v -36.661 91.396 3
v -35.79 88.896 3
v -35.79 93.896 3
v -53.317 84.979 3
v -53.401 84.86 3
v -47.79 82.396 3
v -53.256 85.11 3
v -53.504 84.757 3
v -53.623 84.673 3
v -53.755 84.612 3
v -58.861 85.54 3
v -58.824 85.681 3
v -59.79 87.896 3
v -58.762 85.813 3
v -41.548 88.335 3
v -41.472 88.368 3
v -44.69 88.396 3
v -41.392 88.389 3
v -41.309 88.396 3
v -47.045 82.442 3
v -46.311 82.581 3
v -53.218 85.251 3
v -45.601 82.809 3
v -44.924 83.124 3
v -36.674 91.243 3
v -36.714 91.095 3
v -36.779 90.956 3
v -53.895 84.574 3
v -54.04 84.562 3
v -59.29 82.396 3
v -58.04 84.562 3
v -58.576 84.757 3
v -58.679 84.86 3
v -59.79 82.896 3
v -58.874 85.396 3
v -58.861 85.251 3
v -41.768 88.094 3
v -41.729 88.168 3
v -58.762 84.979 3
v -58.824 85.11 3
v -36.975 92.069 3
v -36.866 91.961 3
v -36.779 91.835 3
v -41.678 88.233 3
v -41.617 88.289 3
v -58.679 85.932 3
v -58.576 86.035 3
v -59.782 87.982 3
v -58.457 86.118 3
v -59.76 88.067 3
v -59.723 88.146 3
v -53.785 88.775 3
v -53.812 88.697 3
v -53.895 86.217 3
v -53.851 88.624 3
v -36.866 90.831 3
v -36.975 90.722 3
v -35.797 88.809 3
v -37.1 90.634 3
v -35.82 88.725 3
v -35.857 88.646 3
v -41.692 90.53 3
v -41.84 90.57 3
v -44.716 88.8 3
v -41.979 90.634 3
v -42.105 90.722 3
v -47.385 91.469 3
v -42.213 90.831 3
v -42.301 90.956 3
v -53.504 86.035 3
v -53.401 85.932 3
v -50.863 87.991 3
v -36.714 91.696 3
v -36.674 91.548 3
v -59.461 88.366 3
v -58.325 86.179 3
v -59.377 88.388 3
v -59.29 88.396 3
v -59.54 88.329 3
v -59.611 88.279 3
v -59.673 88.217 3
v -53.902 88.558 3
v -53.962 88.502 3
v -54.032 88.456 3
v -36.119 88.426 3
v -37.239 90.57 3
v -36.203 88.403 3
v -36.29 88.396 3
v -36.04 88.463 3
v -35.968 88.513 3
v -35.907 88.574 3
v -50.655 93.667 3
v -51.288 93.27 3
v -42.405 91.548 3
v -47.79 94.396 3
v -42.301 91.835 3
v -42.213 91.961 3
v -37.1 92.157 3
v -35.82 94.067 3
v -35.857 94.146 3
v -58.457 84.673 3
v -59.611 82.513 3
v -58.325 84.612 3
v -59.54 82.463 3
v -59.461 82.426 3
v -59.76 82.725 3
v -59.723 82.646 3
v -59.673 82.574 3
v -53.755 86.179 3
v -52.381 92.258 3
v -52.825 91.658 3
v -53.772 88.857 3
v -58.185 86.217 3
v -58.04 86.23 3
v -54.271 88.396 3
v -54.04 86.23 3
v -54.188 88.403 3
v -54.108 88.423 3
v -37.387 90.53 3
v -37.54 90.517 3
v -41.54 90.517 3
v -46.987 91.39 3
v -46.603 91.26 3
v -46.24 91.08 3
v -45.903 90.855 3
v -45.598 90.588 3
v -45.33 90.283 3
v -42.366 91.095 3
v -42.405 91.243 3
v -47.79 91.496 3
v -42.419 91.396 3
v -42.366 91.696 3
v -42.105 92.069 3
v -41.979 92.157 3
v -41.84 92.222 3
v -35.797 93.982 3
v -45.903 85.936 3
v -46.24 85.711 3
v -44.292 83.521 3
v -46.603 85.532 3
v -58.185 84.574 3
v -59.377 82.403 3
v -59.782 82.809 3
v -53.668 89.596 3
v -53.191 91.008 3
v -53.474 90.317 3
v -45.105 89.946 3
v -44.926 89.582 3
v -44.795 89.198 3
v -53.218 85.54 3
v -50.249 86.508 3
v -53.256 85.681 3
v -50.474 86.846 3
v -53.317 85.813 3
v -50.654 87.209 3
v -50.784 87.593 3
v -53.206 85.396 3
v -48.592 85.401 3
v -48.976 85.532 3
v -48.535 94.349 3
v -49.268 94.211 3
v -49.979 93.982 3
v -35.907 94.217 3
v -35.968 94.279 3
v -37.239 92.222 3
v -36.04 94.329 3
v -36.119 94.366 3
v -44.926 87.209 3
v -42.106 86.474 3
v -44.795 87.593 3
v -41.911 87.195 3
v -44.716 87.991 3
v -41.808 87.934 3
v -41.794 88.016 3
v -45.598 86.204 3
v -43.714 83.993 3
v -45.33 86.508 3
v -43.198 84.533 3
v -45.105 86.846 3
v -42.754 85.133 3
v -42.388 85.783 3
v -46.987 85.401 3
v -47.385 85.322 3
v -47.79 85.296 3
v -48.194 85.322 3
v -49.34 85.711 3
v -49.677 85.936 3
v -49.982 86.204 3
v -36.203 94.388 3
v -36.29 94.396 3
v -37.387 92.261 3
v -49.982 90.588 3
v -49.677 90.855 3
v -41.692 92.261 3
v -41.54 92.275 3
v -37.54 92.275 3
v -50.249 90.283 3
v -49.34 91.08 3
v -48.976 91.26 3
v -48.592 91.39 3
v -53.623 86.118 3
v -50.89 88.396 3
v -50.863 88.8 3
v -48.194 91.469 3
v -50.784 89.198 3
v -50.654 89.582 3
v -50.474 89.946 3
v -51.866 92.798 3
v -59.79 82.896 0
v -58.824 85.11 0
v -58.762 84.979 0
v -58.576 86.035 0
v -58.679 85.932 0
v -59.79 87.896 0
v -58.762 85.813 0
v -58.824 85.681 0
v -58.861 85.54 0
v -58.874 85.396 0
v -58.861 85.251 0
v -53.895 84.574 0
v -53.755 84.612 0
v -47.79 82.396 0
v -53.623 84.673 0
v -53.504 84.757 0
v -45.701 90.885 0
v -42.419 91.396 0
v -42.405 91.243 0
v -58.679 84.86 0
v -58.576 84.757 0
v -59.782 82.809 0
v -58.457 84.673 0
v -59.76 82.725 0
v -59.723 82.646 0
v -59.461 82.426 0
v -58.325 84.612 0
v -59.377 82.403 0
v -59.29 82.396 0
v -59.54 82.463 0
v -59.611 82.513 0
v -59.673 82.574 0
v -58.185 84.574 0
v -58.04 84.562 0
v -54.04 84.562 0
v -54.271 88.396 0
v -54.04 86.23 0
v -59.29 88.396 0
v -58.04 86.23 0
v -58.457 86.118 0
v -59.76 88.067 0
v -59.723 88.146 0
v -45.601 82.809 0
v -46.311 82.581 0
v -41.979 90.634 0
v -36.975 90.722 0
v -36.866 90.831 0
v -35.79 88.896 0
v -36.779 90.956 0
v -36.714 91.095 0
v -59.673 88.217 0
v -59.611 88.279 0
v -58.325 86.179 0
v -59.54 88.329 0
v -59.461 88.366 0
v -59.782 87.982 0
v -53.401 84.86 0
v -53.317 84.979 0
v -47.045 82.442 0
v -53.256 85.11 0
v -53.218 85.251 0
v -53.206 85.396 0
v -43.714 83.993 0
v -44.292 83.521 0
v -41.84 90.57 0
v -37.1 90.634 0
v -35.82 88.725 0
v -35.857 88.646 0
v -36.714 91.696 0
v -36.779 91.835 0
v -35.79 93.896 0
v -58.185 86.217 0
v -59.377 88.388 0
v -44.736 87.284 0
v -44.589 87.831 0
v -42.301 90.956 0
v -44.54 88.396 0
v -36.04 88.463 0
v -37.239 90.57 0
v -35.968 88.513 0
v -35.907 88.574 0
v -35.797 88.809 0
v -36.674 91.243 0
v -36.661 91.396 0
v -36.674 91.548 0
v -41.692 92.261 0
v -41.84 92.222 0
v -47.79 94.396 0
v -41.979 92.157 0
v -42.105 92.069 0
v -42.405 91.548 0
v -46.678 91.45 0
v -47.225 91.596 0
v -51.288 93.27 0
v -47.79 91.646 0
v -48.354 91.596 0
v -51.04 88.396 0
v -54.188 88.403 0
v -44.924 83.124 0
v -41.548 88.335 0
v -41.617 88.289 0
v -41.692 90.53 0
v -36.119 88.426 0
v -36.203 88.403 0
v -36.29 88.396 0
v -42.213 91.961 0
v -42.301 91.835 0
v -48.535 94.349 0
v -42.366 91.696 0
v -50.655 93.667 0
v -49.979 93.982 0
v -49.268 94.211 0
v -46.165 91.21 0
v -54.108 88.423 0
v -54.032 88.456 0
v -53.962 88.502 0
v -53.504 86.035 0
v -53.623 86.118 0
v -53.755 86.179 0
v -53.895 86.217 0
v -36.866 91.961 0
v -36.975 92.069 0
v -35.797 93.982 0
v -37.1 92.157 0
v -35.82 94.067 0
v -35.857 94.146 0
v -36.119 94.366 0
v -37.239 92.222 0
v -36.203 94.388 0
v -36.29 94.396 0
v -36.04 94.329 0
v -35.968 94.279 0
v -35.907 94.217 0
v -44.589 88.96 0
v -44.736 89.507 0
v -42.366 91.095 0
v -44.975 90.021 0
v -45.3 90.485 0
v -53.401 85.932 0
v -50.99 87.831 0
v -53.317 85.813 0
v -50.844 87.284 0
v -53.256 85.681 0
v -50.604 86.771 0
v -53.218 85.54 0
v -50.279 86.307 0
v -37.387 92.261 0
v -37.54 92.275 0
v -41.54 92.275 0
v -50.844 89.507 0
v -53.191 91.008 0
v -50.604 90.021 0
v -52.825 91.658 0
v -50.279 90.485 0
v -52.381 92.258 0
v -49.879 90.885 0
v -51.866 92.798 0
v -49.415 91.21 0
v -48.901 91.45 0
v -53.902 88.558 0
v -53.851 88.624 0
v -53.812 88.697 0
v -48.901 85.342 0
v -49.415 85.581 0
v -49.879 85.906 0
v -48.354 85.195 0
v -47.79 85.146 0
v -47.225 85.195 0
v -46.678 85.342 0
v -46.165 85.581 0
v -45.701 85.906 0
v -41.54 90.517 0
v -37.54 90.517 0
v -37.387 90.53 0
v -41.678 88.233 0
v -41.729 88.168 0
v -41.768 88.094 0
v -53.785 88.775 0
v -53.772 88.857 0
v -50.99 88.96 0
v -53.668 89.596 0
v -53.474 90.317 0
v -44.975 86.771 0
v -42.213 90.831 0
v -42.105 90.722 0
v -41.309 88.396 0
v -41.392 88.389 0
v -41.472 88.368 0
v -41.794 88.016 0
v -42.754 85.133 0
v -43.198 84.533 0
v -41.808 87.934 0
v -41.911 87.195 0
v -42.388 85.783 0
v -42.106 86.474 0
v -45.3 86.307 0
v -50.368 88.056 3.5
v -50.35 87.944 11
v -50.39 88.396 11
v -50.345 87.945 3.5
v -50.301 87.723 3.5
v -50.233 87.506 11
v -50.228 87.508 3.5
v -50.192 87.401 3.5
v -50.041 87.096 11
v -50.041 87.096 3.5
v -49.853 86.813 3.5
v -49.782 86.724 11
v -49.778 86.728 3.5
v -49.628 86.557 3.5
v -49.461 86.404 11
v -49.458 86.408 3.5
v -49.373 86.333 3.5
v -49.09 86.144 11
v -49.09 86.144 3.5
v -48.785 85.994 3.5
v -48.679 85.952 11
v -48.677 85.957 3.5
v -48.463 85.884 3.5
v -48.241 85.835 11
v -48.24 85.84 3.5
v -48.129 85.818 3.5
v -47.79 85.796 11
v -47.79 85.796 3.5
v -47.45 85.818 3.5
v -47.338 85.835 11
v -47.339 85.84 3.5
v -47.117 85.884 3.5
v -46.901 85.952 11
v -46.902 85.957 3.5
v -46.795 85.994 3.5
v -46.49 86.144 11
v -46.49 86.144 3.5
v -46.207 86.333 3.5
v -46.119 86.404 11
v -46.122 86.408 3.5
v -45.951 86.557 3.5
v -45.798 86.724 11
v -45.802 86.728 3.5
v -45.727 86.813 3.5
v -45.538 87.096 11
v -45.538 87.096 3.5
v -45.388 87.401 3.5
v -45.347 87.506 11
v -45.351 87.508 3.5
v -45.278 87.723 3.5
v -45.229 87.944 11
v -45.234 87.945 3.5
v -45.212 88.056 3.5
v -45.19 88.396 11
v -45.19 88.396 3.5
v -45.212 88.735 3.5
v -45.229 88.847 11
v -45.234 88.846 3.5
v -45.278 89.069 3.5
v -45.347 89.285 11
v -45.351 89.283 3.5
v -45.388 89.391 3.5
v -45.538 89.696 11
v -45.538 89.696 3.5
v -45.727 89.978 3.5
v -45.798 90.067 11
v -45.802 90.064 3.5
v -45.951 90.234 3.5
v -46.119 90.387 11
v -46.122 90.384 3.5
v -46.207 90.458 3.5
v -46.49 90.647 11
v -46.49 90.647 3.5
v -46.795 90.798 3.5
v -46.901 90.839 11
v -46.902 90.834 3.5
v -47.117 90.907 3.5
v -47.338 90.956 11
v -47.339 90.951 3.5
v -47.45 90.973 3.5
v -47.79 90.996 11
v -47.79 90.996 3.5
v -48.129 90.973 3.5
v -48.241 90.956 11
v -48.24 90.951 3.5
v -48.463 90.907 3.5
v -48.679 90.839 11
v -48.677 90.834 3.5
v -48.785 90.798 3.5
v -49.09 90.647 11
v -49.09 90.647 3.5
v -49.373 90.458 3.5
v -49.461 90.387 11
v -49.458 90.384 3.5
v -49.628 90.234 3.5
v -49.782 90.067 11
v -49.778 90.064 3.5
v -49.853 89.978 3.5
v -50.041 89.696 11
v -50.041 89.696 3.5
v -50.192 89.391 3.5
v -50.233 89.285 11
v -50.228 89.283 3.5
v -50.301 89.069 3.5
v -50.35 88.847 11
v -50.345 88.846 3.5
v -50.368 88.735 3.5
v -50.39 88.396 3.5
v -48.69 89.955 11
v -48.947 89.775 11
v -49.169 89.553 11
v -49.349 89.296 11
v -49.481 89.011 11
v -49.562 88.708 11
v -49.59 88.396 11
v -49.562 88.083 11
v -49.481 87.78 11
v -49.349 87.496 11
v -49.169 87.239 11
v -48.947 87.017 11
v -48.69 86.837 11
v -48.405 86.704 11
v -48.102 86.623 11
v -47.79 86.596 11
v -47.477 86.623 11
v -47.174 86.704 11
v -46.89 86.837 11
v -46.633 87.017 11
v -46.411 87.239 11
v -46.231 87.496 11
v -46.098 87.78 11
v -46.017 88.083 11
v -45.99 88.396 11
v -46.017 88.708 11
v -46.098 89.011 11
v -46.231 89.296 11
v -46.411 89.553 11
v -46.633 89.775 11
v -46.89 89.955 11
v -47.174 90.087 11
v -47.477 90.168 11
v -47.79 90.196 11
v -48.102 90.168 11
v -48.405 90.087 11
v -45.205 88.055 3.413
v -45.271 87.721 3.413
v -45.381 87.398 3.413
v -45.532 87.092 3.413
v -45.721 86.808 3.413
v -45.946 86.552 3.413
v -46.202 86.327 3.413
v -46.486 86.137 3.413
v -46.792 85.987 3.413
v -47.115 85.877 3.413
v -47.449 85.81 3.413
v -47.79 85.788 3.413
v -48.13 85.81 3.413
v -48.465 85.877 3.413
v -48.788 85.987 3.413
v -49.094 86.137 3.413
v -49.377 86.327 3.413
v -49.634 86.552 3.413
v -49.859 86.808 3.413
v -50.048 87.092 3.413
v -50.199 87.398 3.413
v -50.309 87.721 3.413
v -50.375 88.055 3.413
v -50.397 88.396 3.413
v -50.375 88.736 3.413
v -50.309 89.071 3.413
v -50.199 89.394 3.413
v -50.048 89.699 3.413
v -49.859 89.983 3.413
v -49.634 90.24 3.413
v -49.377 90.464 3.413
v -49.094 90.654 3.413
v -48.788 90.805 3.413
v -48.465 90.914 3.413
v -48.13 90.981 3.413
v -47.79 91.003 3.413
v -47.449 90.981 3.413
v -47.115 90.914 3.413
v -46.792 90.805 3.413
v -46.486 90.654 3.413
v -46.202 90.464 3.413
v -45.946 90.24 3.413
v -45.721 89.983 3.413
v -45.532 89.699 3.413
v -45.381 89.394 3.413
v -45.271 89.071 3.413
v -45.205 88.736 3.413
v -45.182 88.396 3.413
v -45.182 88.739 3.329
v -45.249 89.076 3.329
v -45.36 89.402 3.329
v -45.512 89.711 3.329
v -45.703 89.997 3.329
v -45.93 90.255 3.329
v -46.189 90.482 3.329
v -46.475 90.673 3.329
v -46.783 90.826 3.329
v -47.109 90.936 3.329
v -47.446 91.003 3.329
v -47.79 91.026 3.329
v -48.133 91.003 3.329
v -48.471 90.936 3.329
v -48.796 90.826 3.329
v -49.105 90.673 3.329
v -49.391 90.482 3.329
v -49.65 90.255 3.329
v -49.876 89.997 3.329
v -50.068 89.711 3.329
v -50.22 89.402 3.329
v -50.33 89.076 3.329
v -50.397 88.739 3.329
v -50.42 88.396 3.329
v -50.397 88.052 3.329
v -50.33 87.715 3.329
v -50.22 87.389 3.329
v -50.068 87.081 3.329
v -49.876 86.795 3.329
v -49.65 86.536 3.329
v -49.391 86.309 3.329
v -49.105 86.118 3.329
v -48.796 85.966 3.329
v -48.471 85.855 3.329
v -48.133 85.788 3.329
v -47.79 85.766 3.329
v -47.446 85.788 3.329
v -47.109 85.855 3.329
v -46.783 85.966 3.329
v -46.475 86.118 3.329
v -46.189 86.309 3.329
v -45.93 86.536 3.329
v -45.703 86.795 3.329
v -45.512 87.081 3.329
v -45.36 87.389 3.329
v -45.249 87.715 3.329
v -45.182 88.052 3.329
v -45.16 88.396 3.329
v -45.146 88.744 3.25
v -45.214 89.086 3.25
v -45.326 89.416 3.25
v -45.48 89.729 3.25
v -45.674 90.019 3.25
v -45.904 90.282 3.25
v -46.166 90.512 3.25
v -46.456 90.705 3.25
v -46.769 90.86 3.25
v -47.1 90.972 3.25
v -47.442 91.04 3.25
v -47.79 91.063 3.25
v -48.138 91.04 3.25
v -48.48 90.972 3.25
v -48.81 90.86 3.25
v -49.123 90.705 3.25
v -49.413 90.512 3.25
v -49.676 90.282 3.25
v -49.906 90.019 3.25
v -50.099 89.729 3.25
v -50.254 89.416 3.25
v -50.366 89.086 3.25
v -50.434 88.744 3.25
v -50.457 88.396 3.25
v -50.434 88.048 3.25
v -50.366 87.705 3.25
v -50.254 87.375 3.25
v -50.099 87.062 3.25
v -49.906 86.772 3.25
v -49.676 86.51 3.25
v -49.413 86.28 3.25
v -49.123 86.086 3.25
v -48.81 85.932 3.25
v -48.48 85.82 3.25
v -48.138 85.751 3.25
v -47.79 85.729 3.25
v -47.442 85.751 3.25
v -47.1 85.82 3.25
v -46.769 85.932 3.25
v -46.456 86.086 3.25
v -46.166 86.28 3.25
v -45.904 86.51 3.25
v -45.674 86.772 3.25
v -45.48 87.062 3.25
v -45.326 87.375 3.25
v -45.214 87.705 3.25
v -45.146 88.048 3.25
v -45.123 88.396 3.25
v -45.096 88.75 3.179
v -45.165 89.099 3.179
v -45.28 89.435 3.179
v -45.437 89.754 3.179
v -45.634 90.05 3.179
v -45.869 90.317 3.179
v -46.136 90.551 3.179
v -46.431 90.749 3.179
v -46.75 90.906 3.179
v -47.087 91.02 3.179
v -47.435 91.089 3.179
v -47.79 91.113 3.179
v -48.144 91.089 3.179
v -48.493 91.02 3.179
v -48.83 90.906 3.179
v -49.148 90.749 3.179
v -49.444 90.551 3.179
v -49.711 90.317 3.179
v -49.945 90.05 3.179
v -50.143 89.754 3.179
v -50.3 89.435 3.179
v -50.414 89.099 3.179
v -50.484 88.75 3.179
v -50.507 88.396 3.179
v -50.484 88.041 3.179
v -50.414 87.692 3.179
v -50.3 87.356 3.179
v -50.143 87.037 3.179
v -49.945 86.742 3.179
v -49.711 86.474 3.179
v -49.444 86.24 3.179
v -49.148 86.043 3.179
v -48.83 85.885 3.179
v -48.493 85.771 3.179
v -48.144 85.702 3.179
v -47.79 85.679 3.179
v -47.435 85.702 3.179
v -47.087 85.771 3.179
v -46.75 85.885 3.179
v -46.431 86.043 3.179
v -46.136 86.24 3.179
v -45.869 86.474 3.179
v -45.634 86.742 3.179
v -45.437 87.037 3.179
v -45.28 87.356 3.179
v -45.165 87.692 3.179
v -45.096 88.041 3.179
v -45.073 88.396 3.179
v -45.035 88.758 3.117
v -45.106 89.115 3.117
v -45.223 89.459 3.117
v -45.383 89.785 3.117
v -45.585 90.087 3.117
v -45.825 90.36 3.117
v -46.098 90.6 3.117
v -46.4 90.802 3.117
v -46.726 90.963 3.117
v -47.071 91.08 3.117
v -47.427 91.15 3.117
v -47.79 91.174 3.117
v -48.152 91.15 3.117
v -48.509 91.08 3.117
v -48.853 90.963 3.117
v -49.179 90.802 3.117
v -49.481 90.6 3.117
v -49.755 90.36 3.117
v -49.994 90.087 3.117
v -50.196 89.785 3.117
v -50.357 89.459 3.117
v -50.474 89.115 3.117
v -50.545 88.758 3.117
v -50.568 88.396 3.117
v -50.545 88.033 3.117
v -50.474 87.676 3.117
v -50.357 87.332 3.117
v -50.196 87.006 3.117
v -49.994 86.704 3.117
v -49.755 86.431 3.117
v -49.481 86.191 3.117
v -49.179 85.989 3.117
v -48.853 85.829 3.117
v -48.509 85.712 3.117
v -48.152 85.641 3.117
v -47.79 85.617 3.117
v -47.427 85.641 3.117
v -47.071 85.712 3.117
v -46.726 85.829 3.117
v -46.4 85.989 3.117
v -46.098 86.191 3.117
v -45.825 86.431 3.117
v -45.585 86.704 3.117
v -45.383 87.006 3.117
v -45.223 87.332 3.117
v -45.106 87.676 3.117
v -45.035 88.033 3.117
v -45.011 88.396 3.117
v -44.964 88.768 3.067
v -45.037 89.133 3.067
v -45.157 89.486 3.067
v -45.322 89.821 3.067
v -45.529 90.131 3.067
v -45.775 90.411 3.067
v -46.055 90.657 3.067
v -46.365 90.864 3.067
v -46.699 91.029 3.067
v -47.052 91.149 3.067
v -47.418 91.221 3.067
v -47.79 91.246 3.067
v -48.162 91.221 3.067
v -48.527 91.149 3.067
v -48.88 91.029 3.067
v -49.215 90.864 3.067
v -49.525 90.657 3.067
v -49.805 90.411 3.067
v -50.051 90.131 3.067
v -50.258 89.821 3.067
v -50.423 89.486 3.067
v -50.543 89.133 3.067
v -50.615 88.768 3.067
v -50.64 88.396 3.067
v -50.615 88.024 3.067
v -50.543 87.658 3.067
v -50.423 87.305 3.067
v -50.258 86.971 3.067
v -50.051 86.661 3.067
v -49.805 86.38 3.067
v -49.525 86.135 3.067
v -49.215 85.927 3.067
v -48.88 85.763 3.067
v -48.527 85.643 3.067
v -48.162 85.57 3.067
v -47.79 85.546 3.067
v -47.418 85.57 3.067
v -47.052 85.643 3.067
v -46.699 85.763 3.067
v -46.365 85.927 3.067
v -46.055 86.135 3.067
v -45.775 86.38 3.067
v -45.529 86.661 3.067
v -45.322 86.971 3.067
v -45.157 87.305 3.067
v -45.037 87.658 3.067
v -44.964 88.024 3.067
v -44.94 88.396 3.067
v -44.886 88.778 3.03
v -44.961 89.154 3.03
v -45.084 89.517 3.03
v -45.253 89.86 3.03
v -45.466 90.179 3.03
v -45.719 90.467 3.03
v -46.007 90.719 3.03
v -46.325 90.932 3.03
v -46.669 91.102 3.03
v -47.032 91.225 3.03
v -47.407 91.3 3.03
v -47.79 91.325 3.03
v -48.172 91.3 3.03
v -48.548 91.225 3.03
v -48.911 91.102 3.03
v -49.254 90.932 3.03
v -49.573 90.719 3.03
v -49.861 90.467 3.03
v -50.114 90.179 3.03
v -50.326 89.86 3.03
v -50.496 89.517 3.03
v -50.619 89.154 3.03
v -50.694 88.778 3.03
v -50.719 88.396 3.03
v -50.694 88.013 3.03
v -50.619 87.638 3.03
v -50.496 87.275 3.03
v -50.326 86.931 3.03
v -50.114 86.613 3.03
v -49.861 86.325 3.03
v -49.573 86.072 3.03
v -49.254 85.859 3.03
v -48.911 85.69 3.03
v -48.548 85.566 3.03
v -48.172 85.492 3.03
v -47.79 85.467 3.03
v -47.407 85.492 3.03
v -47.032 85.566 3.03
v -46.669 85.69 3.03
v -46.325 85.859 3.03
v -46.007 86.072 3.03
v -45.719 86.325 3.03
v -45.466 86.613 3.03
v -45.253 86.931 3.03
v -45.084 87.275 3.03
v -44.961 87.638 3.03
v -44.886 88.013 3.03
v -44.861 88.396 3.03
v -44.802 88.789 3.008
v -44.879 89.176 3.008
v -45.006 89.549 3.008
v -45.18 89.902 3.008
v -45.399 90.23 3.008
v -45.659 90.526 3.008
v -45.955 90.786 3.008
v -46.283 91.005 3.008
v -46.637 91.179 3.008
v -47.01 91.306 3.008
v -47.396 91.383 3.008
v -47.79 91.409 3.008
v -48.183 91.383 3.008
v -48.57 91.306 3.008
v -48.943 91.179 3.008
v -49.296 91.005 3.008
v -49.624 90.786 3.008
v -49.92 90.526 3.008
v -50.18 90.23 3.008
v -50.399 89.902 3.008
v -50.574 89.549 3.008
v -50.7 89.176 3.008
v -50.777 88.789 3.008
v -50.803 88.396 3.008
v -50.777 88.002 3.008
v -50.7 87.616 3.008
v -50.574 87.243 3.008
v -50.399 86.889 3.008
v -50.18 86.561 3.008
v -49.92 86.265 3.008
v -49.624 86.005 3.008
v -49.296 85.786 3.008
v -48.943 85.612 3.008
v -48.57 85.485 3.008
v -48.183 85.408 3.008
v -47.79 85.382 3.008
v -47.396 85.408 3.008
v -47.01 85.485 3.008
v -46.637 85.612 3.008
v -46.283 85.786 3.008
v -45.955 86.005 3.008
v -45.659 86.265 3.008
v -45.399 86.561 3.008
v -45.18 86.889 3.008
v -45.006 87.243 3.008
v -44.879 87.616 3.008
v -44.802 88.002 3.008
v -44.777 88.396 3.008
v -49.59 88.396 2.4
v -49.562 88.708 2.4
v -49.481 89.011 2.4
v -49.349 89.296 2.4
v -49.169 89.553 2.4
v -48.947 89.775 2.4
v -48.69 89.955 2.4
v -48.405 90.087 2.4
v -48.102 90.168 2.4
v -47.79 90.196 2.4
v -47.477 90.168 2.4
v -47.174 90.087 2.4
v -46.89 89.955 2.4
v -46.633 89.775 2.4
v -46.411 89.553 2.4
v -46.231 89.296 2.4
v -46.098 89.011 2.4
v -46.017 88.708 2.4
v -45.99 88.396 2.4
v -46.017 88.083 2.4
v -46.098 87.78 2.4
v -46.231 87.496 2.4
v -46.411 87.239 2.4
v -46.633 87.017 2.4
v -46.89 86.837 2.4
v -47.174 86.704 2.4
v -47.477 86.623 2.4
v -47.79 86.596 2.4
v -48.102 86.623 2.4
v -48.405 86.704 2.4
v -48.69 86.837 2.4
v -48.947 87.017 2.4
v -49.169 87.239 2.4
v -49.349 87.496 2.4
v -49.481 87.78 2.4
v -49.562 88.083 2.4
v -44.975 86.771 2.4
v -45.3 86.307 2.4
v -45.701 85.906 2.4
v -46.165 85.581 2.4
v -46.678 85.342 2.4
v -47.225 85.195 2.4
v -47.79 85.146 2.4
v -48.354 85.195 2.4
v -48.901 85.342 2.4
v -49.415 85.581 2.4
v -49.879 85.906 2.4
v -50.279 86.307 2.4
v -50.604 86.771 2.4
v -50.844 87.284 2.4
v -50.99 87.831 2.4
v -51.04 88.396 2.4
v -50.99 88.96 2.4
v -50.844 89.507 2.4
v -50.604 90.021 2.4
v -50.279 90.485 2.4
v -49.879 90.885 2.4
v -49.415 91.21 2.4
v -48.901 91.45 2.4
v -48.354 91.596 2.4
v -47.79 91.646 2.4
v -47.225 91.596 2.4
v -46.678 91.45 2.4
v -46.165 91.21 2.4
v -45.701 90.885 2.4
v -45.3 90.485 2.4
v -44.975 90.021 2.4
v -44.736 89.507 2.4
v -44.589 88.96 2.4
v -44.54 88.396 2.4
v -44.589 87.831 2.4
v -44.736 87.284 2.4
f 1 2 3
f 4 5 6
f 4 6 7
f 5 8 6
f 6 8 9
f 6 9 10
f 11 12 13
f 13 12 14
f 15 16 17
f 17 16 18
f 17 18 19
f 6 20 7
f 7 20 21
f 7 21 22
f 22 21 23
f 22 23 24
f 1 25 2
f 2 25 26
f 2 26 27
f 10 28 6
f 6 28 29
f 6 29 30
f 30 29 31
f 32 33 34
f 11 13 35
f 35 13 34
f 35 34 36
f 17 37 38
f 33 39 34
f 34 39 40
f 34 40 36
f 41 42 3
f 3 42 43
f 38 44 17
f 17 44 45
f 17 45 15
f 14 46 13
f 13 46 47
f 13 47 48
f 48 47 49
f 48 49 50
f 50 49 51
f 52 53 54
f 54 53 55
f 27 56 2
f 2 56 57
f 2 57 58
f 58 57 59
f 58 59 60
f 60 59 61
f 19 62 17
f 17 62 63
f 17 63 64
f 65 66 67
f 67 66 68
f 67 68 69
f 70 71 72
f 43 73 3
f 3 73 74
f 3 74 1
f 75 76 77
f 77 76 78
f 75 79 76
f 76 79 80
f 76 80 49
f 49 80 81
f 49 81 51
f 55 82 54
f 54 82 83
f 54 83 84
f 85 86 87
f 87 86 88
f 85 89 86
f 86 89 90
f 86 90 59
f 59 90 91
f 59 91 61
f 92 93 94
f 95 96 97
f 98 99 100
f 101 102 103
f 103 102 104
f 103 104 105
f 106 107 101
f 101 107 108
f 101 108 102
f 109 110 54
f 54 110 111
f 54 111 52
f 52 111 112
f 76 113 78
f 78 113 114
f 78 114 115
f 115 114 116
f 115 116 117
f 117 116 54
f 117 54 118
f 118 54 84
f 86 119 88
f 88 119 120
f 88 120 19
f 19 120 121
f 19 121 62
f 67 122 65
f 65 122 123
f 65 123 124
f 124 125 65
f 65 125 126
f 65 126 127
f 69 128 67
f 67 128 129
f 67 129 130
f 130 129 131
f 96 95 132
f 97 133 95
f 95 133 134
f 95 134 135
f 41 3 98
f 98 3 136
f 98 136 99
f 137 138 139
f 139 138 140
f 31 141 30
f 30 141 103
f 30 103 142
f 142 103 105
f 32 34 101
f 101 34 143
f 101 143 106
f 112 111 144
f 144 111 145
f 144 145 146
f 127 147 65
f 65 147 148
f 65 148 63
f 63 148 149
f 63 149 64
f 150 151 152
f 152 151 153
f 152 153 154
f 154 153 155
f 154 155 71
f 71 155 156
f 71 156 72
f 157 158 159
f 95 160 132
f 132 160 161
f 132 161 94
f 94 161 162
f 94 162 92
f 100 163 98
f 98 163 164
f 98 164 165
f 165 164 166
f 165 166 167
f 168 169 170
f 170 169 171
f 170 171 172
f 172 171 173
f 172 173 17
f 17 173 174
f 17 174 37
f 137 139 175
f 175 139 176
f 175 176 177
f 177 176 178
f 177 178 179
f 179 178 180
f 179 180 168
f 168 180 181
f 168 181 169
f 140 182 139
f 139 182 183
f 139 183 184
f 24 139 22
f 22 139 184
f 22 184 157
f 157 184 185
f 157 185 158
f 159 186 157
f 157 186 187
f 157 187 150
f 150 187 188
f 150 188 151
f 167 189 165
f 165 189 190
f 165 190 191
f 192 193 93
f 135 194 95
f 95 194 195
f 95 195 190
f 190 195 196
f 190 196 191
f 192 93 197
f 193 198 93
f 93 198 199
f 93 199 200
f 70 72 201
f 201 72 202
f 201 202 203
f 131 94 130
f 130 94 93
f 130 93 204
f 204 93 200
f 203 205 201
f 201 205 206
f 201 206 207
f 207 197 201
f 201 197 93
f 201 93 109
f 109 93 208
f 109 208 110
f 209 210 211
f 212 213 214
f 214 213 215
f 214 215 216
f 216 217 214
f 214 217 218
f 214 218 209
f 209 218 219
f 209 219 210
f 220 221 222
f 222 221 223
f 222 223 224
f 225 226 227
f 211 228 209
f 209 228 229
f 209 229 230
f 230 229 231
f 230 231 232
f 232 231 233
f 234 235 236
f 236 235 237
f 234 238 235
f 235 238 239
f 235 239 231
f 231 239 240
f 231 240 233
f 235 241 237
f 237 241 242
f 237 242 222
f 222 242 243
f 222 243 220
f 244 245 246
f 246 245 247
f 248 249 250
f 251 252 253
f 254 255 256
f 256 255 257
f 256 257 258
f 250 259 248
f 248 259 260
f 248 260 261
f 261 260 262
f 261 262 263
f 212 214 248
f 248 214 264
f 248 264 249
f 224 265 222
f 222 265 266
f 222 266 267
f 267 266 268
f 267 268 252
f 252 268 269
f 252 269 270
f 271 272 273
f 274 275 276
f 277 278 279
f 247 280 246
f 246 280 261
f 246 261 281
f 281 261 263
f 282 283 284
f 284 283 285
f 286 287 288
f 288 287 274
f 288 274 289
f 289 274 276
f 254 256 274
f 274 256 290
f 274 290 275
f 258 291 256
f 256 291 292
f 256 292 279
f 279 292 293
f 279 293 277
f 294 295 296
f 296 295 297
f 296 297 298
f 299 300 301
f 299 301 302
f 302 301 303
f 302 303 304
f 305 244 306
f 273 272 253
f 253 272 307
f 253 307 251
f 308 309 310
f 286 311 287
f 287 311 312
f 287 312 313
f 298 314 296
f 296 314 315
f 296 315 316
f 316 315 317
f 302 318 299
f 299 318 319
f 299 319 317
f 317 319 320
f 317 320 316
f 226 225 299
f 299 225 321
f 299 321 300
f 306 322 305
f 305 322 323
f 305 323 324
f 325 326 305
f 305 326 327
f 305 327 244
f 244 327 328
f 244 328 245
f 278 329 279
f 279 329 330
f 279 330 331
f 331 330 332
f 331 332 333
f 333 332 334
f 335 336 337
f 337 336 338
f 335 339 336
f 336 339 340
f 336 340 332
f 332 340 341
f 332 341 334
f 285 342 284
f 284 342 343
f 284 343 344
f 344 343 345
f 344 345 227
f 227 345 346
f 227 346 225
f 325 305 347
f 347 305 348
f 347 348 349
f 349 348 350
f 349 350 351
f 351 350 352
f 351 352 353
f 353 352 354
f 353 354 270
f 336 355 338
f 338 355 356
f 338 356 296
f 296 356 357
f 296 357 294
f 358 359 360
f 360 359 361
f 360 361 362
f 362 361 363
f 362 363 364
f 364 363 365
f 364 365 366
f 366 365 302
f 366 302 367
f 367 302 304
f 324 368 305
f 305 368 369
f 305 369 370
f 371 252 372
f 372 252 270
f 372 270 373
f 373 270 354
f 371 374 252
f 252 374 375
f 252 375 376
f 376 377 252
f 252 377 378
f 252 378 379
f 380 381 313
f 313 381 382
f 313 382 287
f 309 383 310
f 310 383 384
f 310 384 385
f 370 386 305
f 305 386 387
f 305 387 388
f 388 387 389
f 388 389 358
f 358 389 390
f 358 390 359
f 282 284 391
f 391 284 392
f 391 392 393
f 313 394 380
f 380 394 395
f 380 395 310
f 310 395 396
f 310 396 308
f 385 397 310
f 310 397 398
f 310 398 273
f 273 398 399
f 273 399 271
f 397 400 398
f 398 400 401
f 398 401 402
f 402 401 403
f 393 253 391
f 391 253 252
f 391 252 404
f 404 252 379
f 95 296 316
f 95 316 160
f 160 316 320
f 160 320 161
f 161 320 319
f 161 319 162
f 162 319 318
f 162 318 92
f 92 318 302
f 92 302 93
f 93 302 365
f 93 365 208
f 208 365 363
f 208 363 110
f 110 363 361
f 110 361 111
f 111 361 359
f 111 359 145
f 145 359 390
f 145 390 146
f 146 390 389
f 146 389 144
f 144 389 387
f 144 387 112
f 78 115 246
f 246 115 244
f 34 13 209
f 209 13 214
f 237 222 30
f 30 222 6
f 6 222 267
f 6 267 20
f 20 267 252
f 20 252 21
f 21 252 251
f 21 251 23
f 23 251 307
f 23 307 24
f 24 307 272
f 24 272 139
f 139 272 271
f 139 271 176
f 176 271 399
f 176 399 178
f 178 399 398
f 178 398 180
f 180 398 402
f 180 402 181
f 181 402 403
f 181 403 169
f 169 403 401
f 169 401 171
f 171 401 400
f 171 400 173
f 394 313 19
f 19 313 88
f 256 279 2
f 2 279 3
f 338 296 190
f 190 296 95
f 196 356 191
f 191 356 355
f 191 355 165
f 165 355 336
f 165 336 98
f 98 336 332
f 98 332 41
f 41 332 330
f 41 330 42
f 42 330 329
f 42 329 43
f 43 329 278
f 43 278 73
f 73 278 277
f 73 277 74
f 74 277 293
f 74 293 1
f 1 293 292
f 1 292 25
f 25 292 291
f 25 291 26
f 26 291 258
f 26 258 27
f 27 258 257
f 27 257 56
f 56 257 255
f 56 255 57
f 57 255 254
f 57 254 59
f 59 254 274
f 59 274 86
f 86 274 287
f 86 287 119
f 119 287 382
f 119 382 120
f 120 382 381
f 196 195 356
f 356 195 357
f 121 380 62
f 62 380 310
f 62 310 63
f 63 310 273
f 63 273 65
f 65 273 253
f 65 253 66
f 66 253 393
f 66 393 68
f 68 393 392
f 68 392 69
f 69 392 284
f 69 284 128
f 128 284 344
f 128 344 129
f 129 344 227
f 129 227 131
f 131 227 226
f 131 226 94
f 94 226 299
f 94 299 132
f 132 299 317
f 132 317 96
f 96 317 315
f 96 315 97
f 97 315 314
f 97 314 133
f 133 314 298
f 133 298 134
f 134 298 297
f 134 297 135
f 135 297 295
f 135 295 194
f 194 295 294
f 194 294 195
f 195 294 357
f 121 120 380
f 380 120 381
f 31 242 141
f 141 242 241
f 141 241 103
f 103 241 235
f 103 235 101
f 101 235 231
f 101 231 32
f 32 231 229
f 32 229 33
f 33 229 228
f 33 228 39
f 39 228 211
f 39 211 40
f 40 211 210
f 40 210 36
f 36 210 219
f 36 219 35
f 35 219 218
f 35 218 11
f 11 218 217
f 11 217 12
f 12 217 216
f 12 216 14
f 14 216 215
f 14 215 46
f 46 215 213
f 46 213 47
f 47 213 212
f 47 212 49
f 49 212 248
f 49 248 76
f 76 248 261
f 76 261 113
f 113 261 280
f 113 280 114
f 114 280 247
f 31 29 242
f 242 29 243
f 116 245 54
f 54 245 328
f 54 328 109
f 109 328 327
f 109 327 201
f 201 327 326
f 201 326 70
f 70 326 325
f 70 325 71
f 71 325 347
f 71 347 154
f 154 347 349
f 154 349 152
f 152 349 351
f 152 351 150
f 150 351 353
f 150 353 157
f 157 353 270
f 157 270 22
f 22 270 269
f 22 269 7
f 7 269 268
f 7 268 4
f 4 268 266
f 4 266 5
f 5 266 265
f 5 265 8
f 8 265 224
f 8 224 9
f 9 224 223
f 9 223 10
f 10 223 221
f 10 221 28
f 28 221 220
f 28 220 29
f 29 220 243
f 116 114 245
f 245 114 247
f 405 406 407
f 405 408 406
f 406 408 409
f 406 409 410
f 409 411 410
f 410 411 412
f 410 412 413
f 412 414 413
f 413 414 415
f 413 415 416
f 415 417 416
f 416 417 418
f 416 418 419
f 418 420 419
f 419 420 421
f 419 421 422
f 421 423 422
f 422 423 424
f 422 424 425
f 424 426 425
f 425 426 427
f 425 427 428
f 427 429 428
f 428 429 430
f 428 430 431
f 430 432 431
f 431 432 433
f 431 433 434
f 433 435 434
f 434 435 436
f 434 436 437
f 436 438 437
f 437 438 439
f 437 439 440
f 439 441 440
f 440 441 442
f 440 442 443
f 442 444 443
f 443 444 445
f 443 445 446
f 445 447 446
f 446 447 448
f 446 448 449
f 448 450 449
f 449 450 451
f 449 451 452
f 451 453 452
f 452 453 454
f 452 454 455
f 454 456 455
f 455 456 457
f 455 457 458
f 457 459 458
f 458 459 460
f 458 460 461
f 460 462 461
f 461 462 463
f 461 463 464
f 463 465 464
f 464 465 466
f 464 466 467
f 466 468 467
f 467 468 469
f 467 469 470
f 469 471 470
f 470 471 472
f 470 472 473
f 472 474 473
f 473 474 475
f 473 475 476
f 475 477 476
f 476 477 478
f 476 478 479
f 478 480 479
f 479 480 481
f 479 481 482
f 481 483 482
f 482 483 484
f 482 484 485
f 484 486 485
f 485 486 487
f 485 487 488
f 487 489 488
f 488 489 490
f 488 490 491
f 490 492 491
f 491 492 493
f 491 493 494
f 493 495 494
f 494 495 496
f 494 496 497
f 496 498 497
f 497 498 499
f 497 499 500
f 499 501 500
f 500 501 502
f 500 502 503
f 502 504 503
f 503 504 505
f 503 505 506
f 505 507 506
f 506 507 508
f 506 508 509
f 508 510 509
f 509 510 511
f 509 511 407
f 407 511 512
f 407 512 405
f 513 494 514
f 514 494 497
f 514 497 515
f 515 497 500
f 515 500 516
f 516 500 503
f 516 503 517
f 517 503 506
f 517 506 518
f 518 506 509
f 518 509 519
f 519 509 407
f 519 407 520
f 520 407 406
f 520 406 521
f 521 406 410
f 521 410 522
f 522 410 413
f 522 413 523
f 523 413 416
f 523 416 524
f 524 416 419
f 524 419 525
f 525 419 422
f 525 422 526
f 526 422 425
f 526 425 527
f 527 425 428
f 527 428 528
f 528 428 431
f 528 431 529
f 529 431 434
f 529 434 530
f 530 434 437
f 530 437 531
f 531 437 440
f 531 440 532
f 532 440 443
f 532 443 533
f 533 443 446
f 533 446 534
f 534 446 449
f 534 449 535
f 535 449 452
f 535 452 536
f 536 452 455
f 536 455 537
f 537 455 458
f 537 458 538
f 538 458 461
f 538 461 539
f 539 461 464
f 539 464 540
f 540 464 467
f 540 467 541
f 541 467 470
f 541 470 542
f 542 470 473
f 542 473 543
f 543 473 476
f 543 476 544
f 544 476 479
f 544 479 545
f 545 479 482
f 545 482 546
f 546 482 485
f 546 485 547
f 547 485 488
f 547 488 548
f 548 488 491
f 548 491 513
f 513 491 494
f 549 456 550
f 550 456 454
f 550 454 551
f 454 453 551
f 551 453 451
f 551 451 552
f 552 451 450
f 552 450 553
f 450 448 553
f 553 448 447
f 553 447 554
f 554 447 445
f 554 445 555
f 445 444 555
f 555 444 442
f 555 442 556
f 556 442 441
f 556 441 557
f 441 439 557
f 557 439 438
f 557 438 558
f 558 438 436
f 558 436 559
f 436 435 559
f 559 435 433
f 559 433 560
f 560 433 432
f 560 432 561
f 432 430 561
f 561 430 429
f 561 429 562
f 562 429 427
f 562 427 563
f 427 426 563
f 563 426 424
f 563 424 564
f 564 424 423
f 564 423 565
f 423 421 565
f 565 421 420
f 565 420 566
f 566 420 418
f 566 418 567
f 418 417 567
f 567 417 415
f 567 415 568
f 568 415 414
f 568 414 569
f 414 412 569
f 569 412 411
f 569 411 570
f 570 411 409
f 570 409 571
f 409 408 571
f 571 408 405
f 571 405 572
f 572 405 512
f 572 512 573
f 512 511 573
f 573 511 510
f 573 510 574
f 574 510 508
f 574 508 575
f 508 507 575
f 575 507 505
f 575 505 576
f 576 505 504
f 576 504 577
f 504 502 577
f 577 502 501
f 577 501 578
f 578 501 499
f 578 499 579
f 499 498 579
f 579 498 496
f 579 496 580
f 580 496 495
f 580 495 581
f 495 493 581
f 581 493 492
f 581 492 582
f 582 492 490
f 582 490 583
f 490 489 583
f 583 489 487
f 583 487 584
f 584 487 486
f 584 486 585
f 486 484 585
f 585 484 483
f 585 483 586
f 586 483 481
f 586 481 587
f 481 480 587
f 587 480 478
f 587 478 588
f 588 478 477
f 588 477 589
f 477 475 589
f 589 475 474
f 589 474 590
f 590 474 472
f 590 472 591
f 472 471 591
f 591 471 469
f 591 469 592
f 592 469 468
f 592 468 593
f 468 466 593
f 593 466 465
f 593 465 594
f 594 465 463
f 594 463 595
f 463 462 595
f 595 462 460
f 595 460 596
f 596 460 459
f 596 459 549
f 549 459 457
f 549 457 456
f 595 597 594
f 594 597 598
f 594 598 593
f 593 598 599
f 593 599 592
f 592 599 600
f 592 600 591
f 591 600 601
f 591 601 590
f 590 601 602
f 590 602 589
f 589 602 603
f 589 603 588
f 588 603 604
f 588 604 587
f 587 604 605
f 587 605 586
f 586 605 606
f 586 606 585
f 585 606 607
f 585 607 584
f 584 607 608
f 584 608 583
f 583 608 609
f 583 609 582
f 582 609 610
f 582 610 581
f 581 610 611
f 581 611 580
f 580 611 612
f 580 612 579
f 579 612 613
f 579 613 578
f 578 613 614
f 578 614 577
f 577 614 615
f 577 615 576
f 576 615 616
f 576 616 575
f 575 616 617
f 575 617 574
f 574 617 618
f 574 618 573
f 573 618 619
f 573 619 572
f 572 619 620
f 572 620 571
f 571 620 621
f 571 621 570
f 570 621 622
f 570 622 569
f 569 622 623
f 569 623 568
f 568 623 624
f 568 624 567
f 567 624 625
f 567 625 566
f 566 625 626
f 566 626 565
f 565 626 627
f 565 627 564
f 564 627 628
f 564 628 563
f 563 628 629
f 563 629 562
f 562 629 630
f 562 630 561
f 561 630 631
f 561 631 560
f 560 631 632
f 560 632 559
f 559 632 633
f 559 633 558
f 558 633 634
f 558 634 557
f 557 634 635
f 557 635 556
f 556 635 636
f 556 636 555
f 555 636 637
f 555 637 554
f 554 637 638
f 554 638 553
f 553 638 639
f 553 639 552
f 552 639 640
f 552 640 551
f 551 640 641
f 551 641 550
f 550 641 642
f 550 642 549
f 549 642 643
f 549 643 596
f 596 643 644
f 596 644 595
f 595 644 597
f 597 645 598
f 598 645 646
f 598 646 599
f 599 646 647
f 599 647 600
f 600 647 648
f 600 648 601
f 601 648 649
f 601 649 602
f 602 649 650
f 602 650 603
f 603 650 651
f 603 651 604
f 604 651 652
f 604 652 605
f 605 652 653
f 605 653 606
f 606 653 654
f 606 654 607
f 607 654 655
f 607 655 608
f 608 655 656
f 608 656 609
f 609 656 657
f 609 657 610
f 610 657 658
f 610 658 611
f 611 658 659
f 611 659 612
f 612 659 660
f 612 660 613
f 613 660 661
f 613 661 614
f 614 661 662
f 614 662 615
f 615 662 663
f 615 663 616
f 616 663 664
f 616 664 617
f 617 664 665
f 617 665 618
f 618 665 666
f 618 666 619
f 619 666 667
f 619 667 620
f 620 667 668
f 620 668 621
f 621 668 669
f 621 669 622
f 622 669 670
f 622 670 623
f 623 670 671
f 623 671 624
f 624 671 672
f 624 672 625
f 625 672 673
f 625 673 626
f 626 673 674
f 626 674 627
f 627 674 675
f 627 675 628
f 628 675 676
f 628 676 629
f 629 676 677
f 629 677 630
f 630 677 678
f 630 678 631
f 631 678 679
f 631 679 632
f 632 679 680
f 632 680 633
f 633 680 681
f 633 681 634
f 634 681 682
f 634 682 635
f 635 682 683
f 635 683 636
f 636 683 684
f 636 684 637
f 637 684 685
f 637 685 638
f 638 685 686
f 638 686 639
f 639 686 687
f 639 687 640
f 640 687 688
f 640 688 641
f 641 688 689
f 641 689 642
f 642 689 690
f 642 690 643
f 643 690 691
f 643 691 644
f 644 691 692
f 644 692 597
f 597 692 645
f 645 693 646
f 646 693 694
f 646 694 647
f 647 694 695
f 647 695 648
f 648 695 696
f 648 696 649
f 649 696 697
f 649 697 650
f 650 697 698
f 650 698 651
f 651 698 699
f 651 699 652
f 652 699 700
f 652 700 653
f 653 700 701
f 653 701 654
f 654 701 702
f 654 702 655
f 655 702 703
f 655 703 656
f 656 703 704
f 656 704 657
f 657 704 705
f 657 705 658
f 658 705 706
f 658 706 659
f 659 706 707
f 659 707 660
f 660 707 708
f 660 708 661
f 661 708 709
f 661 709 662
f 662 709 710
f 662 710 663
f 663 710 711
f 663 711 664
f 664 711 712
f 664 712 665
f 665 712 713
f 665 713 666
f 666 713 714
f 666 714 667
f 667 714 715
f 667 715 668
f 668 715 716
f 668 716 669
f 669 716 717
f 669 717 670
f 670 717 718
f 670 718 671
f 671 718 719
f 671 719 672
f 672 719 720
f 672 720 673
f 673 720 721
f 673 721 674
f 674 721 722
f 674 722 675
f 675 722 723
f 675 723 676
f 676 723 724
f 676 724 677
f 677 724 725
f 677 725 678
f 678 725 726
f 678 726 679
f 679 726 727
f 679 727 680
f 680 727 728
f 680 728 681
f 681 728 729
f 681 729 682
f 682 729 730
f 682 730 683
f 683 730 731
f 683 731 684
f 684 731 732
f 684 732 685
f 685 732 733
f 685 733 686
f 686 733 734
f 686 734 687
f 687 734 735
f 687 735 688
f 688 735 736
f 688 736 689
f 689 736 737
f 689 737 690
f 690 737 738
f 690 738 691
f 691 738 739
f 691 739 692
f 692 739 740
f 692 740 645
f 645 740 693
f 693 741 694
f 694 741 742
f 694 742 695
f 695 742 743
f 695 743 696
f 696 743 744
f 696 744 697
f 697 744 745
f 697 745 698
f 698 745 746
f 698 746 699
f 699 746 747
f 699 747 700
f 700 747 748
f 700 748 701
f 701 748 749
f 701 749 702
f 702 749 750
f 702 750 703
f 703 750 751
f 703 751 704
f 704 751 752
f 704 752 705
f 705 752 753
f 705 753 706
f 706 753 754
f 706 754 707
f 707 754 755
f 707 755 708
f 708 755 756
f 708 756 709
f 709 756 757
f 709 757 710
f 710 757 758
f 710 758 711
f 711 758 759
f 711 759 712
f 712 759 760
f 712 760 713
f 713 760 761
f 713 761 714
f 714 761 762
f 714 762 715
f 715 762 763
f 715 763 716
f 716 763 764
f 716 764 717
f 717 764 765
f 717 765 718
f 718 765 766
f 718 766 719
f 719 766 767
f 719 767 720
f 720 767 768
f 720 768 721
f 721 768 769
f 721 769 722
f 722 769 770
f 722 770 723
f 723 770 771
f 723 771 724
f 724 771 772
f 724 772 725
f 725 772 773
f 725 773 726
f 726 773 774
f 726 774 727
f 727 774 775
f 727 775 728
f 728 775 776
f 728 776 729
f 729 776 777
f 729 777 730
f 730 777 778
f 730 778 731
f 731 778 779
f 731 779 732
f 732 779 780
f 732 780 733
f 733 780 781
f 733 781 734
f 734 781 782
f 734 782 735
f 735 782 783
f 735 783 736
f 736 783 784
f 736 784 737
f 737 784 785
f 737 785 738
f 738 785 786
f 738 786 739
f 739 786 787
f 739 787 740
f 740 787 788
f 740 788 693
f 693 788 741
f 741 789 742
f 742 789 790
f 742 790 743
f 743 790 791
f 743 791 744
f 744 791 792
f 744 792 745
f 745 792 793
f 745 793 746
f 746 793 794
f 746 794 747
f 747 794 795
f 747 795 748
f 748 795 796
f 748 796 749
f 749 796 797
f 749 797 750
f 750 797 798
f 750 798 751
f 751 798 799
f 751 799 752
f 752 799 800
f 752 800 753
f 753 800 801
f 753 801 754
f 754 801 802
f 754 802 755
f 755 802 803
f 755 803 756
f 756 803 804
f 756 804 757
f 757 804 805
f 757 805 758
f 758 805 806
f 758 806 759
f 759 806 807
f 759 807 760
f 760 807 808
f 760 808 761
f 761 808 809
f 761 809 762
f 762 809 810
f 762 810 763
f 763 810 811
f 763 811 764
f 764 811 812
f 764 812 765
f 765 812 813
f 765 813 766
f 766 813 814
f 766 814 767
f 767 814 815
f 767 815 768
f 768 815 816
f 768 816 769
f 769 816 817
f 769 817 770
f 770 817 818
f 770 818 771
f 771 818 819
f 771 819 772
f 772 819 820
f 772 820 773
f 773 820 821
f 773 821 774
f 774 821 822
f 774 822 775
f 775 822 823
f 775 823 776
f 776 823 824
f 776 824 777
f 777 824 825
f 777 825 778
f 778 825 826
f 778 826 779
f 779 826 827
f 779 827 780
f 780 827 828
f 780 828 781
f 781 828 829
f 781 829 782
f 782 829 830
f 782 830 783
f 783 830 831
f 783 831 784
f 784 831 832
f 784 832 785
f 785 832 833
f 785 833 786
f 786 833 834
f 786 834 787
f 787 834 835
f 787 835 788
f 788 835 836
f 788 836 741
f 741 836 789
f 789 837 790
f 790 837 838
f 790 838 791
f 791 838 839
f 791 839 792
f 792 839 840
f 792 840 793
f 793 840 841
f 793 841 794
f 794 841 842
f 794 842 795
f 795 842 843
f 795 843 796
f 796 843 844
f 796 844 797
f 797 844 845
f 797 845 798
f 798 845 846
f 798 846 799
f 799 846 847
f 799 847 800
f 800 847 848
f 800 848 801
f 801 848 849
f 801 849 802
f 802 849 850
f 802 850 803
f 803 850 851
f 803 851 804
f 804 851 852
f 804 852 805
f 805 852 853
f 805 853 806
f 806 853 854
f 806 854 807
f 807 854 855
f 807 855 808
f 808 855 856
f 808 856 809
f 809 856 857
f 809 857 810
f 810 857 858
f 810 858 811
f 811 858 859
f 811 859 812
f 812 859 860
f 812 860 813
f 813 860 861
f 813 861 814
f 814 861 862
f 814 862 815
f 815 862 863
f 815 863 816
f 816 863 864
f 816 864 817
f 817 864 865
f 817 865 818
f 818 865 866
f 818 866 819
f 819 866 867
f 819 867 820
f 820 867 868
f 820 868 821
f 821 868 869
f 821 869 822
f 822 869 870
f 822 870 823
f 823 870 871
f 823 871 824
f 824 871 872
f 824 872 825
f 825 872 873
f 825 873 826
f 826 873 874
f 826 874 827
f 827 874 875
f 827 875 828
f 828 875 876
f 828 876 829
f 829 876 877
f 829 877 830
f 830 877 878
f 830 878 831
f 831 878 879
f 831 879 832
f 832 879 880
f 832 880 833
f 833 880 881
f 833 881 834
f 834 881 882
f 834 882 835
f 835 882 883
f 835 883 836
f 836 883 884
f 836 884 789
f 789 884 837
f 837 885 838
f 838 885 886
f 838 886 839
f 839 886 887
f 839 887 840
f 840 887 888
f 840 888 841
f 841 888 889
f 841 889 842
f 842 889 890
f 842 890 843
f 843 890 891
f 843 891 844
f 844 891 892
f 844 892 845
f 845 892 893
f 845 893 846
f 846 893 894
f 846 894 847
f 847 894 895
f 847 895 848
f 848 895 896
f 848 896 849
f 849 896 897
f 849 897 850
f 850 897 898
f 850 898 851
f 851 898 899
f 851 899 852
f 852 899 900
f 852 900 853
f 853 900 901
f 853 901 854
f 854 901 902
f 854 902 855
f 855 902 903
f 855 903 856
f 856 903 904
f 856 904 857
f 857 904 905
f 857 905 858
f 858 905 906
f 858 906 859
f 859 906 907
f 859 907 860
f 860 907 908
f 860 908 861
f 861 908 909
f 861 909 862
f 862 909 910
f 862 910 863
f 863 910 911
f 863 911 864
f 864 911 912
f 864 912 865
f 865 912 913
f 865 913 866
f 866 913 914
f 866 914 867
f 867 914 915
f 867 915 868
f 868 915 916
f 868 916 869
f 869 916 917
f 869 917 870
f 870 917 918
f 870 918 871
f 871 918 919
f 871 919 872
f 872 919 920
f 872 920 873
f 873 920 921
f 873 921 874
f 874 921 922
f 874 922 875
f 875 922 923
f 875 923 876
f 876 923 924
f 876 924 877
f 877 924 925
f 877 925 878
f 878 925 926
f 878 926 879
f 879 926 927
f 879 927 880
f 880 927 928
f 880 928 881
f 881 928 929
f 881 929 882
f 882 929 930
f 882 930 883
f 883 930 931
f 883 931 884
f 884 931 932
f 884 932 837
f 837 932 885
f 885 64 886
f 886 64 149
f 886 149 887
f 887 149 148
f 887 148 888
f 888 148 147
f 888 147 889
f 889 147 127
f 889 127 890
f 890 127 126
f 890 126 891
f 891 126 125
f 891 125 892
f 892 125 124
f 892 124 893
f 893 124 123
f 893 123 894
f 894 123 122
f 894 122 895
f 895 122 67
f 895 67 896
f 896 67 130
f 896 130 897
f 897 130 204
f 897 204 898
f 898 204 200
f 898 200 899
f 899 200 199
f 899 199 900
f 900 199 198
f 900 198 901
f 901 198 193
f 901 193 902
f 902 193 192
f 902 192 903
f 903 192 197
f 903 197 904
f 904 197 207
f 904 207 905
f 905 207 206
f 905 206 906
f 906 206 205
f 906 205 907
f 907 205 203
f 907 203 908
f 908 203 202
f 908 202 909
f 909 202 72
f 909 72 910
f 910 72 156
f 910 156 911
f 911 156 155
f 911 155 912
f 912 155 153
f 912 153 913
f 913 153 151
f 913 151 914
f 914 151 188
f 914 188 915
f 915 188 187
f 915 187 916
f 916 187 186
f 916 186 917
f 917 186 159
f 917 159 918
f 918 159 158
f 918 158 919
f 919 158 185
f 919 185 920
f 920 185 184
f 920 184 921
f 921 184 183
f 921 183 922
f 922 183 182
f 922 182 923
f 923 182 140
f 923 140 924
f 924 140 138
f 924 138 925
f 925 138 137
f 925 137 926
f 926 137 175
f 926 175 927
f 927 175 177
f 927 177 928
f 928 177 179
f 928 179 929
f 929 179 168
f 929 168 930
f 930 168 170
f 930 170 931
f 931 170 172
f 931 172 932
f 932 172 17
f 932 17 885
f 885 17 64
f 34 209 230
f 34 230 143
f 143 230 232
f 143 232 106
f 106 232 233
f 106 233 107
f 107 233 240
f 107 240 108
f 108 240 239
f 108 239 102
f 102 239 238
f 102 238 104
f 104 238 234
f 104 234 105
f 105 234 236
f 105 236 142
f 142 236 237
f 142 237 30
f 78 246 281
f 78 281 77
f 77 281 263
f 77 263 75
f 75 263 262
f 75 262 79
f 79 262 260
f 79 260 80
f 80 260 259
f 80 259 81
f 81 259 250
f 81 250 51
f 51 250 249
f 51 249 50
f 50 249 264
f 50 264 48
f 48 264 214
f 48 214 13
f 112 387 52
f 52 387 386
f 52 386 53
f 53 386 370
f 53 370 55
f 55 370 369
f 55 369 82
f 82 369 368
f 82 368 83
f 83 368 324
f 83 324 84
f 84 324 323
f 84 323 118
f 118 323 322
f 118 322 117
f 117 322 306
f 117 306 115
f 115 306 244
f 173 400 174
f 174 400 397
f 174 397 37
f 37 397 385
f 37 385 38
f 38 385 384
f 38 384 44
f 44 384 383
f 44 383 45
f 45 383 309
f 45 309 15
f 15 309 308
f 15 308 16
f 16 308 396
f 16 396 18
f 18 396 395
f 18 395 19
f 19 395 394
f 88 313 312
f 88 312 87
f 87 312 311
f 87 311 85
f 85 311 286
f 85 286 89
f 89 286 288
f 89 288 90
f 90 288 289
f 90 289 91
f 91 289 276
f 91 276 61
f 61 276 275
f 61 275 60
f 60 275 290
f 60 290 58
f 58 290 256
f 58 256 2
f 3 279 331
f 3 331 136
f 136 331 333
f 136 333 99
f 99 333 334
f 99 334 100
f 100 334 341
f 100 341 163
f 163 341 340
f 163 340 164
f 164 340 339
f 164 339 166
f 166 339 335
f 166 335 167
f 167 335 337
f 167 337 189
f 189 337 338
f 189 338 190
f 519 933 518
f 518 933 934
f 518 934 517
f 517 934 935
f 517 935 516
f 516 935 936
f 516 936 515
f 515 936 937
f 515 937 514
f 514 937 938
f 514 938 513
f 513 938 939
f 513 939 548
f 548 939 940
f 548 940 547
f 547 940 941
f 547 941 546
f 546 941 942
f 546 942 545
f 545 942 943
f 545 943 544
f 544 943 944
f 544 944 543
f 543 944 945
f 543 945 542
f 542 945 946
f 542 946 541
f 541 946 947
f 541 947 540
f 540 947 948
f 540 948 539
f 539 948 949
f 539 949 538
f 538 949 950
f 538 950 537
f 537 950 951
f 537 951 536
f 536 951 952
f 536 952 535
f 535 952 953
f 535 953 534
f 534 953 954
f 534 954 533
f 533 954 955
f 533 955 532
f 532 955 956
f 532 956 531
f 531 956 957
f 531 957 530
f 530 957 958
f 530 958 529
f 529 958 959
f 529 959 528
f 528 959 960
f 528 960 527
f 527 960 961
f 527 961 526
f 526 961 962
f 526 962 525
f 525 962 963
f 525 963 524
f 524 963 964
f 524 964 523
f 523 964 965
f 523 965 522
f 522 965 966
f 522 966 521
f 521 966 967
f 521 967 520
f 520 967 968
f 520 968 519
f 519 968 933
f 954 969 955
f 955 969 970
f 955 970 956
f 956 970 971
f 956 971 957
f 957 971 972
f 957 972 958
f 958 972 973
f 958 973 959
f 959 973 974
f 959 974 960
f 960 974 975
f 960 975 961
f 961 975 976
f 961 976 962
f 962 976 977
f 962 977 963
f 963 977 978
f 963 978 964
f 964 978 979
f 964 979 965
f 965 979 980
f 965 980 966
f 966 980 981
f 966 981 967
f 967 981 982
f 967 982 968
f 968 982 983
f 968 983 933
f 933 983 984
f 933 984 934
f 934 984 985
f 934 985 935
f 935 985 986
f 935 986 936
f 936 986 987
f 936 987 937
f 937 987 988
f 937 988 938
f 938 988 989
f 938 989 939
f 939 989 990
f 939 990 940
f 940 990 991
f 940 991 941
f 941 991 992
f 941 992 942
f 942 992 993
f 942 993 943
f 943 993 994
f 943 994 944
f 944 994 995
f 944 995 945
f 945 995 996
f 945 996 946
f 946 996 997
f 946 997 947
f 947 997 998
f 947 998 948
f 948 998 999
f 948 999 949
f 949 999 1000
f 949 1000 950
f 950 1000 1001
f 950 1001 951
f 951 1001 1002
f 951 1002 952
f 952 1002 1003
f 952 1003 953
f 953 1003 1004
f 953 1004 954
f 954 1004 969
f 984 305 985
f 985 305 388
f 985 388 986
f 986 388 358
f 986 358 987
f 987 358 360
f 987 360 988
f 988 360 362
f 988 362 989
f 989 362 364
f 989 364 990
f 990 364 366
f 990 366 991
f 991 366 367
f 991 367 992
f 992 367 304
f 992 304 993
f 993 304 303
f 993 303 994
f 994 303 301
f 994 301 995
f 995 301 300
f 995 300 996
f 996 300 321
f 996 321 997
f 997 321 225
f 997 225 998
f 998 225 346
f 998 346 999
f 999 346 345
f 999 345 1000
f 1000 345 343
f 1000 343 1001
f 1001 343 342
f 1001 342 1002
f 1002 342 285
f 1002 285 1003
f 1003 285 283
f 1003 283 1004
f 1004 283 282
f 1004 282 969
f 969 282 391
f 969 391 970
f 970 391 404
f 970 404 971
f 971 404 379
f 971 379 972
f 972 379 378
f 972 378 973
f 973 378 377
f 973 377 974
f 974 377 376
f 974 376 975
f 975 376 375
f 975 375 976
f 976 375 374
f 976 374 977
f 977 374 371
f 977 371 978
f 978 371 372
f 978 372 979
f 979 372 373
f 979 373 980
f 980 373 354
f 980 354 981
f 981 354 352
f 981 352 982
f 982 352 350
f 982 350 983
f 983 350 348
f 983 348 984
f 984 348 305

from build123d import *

# Parameters (mm, degrees)
BOSS_EXTRUDE1_DEPTH                                  = 3
SKETCH2_R                                            = 2.6
BOSS_EXTRUDE2_DEPTH                                  = 8
FILLET1_R                                            = 0.5
CBORE_FOR_M3_HEX_SOCKET_THIN_HEAD_CAP_SC_D           = 3.6
CBORE_FOR_M3_HEX_SOCKET_THIN_HEAD_CAP_SC_CBORE_D     = 6.5
CBORE_FOR_M3_HEX_SOCKET_THIN_HEAD_CAP_SC_CBORE_DEPTH = 2.4


with BuildPart() as part:
    # Sketch1 → Boss-Extrude1 (new body)
    with BuildSketch(Plane.XY):
        with BuildLine():
            Line((-47.789798407, 94.395653496), (-35.789798407, 94.395653496))
            Line((-35.789798407, 94.395653496), (-35.789798407, 88.395653496))
            Line((-35.789798407, 88.395653496), (-41.789798407, 88.395653496))
            ThreePointArc((-41.789798407, 88.395653496), (-43.54715772, 84.153012809), (-47.789798407, 82.395653496))
            Line((-47.789798407, 82.395653496), (-59.789798407, 82.395653496))
            Line((-59.789798407, 82.395653496), (-59.789798407, 88.395653496))
            Line((-59.789798407, 88.395653496), (-53.789798407, 88.395653496))
            ThreePointArc((-53.789798407, 88.395653496), (-52.032439094, 92.638294183), (-47.789798407, 94.395653496))
        make_face()
        with BuildLine():
            Line((-37.539798407, 90.516657199), (-41.539798407, 90.516657199))
            ThreePointArc((-41.539798407, 90.516657199), (-42.418794704, 91.395653496), (-41.539798407, 92.274649793))
            Line((-41.539798407, 92.274649793), (-37.539798407, 92.274649793))
            ThreePointArc((-37.539798407, 92.274649793), (-36.66080211, 91.395653496), (-37.539798407, 90.516657199))
        make_face(mode=Mode.SUBTRACT)
        with BuildLine():
            Line((-58.039798407, 86.229692735), (-54.039798407, 86.229692735))
            ThreePointArc((-54.039798407, 86.229692735), (-53.205759169, 85.395653496), (-54.039798407, 84.561614258))
            Line((-54.039798407, 84.561614258), (-58.039798407, 84.561614258))
            ThreePointArc((-58.039798407, 84.561614258), (-58.873837646, 85.395653496), (-58.039798407, 86.229692735))
        make_face(mode=Mode.SUBTRACT)
    extrude(amount=BOSS_EXTRUDE1_DEPTH)

    # Sketch2 → Boss-Extrude2 (add)
    with BuildSketch(Plane(origin=(0, 0, 3), x_dir=(-1, 0, 0), z_dir=(0, 0, -1))):
        with Locations((47.789798407, 88.395653496)):
            Circle(SKETCH2_R)
    extrude(amount=-BOSS_EXTRUDE2_DEPTH)

    # Fillet1
    fillet1_edges = [part.edges().sort_by_distance(p)[0] for p in [
        (-35.789798407, 94.395653496, 1.5),
        (-35.789798407, 88.395653496, 1.5),
        (-41.789798407, 88.395653496, 1.5),
        (-59.789798407, 82.395653496, 1.5),
        (-59.789798407, 88.395653496, 1.5),
        (-53.789798407, 88.395653496, 1.5),
        (-45.189798407, 88.395653496, 3),
    ]]
    fillet(fillet1_edges, radius=FILLET1_R)

    # CBORE for M3 Hex Socket Thin Head Cap Screw1 (through all)
    with Locations(Plane(origin=(0, 0, 0), x_dir=(-1, 0, 0), z_dir=(0, 0, -1))):
        with Locations((47.789798407, 88.395653496)):
            CounterBoreHole(CBORE_FOR_M3_HEX_SOCKET_THIN_HEAD_CAP_SC_D / 2, CBORE_FOR_M3_HEX_SOCKET_THIN_HEAD_CAP_SC_CBORE_D / 2, CBORE_FOR_M3_HEX_SOCKET_THIN_HEAD_CAP_SC_CBORE_DEPTH)


solid = part.part
